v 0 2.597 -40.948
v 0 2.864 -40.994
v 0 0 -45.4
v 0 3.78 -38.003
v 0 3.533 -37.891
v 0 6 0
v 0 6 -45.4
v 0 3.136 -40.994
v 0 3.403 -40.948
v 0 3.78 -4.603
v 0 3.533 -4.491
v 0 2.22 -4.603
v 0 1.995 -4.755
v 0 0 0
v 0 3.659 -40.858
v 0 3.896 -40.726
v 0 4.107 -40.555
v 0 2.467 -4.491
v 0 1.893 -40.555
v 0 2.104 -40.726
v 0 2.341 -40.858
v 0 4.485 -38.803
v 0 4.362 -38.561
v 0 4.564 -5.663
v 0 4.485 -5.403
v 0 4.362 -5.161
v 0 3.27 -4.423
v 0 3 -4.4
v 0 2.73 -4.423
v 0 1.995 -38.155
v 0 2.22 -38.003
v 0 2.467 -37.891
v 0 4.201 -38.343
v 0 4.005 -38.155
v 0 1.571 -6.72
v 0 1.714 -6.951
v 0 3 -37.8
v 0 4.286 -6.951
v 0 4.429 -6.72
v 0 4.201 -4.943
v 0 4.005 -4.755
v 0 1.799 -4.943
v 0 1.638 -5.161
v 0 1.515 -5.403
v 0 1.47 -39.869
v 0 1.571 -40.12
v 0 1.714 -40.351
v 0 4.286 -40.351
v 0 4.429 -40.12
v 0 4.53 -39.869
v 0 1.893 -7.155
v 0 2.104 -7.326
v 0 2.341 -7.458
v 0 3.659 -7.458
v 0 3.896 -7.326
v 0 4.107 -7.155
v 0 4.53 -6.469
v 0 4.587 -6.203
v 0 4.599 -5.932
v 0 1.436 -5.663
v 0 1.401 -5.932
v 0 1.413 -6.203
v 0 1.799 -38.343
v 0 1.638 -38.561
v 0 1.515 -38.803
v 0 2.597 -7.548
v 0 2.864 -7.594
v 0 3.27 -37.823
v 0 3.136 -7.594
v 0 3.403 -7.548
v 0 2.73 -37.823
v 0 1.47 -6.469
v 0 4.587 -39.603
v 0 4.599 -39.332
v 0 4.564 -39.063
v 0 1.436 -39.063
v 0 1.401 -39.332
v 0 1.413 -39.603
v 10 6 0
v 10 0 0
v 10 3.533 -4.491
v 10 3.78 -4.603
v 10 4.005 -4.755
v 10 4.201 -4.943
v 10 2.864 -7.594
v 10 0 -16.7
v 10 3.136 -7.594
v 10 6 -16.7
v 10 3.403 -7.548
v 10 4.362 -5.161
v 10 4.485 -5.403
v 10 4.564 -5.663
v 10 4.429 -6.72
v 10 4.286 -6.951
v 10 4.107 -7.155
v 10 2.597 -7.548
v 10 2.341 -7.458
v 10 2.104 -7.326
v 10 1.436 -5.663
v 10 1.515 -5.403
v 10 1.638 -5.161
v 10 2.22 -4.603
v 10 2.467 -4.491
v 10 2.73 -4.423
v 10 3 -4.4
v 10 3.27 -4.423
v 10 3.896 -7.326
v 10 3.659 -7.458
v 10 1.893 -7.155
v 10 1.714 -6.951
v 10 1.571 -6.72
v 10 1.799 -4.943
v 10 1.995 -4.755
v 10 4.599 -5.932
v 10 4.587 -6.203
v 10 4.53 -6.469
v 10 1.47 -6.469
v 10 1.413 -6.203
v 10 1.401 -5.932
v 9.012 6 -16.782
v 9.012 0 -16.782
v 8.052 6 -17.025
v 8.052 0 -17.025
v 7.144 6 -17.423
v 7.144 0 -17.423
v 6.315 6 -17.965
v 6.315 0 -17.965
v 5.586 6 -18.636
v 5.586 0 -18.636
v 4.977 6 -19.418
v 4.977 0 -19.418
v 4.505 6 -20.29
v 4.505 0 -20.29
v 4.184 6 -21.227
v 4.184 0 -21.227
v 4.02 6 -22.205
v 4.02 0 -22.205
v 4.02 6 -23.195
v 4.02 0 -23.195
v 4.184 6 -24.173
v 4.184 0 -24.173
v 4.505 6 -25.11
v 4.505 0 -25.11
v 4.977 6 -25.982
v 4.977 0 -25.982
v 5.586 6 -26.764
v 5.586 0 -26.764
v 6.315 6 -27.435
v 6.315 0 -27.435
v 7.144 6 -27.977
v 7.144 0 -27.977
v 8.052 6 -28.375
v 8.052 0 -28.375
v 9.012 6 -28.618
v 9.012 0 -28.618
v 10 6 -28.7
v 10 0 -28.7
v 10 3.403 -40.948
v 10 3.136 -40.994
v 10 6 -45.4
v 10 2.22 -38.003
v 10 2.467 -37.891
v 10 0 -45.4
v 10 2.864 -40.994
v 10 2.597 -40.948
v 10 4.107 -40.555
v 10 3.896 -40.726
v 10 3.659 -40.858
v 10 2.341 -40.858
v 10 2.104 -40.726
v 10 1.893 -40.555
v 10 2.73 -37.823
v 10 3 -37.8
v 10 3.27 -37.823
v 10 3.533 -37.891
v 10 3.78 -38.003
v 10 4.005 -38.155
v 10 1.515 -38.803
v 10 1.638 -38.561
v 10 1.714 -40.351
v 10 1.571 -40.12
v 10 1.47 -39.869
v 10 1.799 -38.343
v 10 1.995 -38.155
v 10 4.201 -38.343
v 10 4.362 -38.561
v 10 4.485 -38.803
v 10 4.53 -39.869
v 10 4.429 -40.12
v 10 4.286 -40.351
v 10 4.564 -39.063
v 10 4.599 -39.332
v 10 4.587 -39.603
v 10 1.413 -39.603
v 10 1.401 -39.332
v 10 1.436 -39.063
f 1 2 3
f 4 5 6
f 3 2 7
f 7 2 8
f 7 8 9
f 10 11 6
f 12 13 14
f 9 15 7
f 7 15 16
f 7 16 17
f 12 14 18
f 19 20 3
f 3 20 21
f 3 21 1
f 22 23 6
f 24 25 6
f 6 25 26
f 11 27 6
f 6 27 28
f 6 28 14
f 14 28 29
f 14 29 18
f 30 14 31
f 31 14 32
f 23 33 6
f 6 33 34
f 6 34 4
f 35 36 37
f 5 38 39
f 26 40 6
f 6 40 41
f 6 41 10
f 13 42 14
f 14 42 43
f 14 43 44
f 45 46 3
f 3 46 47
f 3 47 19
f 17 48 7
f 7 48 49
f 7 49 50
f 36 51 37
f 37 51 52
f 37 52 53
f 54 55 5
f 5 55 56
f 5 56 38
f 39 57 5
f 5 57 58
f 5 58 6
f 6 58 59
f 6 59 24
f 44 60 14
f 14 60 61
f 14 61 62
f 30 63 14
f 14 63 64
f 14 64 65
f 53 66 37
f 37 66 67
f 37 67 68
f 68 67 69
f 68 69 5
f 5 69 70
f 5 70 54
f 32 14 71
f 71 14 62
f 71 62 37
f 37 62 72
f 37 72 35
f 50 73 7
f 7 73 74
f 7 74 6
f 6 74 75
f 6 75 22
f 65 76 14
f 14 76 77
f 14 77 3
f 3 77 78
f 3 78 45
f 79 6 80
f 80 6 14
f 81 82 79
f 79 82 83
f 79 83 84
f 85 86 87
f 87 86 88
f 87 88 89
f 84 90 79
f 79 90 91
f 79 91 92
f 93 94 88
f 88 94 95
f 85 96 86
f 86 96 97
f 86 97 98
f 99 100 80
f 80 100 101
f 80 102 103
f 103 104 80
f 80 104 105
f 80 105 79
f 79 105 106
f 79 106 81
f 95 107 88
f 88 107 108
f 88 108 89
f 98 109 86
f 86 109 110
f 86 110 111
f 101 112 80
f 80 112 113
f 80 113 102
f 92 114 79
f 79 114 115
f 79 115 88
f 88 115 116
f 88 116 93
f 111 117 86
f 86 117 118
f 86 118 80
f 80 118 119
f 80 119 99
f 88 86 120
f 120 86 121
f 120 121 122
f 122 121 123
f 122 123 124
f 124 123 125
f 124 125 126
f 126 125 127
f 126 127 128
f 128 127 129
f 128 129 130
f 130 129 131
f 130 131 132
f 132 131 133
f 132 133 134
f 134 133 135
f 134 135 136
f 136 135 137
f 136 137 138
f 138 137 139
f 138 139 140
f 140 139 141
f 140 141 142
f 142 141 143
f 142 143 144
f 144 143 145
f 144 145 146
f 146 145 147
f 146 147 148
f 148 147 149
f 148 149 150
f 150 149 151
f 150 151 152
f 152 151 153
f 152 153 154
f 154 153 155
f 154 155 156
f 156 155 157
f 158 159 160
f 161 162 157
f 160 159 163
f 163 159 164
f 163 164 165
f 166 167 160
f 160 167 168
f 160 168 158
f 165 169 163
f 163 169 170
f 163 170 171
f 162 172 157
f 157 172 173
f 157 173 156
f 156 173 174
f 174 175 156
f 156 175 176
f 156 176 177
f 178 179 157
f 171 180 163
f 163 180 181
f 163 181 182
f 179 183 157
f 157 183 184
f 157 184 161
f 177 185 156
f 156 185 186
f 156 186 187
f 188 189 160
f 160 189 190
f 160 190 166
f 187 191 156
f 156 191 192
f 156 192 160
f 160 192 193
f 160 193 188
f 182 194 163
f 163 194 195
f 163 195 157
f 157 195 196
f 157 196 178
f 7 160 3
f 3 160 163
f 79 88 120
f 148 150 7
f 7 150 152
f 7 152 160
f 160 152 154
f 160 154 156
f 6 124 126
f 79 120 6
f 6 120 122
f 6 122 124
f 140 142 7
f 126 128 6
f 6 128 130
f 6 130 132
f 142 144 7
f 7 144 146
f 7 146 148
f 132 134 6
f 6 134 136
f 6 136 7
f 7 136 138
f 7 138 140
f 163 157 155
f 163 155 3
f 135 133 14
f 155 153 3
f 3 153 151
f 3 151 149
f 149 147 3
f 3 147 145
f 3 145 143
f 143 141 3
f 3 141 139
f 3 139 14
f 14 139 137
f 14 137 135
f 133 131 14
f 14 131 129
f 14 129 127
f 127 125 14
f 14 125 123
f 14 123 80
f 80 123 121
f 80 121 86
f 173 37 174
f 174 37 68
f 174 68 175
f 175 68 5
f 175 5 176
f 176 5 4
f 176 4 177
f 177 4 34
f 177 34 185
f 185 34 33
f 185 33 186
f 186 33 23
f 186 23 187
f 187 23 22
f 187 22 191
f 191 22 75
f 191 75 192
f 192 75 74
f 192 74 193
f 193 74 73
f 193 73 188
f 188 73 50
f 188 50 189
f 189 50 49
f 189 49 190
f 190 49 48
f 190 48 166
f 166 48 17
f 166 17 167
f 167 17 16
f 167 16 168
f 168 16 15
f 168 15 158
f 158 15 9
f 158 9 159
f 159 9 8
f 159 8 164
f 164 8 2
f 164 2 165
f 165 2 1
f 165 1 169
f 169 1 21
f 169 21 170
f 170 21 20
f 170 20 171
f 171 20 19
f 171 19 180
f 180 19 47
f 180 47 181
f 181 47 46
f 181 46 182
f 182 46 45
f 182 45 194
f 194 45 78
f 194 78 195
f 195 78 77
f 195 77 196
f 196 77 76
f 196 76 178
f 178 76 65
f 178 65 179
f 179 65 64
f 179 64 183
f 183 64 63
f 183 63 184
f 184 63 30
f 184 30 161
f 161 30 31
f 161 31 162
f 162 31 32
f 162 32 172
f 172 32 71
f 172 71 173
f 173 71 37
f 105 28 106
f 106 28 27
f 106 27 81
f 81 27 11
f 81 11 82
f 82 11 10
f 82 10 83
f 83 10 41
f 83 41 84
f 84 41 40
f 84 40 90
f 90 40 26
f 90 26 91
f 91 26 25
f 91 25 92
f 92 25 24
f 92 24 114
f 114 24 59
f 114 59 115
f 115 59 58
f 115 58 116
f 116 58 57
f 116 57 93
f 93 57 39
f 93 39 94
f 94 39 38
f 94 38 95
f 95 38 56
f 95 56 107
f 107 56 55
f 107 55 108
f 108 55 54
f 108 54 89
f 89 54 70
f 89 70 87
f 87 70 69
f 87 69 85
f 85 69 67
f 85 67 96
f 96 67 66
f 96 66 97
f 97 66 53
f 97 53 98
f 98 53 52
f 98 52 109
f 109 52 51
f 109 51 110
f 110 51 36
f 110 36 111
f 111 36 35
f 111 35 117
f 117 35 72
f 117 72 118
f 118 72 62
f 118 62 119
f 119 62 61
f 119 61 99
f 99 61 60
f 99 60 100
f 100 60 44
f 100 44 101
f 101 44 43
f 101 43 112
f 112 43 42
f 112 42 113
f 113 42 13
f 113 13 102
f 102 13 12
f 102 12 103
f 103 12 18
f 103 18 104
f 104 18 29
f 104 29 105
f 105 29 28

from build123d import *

# Parameters (mm, degrees)
BOSS_EXTRUDE1_DEPTH        = 6
F_3_2_3_2_DIAMETER_HOLE1_D = 3.2


with BuildPart() as part:
    # Sketch1 → Boss-Extrude1 (new body)
    with BuildSketch(Plane(origin=(0, 0, 0), x_dir=(1, 0, 0), z_dir=(0, 1, 0))):
        with BuildLine():
            Line((10, 28.7), (10, 45.4))
            Line((10, 45.4), (0, 45.4))
            Line((0, 45.4), (0, 0))
            Line((0, 0), (10, 0))
            Line((10, 0), (10, 16.7))
            ThreePointArc((10, 16.7), (4, 22.7), (10, 28.7))
        make_face()
    extrude(amount=BOSS_EXTRUDE1_DEPTH)

    # Ø3.2 (3.2) Diameter Hole1 (through all)
    with Locations(Plane.ZY):
        with Locations((-6, 3), (-39.4, 3)):
            Hole(F_3_2_3_2_DIAMETER_HOLE1_D / 2)


solid = part.part
